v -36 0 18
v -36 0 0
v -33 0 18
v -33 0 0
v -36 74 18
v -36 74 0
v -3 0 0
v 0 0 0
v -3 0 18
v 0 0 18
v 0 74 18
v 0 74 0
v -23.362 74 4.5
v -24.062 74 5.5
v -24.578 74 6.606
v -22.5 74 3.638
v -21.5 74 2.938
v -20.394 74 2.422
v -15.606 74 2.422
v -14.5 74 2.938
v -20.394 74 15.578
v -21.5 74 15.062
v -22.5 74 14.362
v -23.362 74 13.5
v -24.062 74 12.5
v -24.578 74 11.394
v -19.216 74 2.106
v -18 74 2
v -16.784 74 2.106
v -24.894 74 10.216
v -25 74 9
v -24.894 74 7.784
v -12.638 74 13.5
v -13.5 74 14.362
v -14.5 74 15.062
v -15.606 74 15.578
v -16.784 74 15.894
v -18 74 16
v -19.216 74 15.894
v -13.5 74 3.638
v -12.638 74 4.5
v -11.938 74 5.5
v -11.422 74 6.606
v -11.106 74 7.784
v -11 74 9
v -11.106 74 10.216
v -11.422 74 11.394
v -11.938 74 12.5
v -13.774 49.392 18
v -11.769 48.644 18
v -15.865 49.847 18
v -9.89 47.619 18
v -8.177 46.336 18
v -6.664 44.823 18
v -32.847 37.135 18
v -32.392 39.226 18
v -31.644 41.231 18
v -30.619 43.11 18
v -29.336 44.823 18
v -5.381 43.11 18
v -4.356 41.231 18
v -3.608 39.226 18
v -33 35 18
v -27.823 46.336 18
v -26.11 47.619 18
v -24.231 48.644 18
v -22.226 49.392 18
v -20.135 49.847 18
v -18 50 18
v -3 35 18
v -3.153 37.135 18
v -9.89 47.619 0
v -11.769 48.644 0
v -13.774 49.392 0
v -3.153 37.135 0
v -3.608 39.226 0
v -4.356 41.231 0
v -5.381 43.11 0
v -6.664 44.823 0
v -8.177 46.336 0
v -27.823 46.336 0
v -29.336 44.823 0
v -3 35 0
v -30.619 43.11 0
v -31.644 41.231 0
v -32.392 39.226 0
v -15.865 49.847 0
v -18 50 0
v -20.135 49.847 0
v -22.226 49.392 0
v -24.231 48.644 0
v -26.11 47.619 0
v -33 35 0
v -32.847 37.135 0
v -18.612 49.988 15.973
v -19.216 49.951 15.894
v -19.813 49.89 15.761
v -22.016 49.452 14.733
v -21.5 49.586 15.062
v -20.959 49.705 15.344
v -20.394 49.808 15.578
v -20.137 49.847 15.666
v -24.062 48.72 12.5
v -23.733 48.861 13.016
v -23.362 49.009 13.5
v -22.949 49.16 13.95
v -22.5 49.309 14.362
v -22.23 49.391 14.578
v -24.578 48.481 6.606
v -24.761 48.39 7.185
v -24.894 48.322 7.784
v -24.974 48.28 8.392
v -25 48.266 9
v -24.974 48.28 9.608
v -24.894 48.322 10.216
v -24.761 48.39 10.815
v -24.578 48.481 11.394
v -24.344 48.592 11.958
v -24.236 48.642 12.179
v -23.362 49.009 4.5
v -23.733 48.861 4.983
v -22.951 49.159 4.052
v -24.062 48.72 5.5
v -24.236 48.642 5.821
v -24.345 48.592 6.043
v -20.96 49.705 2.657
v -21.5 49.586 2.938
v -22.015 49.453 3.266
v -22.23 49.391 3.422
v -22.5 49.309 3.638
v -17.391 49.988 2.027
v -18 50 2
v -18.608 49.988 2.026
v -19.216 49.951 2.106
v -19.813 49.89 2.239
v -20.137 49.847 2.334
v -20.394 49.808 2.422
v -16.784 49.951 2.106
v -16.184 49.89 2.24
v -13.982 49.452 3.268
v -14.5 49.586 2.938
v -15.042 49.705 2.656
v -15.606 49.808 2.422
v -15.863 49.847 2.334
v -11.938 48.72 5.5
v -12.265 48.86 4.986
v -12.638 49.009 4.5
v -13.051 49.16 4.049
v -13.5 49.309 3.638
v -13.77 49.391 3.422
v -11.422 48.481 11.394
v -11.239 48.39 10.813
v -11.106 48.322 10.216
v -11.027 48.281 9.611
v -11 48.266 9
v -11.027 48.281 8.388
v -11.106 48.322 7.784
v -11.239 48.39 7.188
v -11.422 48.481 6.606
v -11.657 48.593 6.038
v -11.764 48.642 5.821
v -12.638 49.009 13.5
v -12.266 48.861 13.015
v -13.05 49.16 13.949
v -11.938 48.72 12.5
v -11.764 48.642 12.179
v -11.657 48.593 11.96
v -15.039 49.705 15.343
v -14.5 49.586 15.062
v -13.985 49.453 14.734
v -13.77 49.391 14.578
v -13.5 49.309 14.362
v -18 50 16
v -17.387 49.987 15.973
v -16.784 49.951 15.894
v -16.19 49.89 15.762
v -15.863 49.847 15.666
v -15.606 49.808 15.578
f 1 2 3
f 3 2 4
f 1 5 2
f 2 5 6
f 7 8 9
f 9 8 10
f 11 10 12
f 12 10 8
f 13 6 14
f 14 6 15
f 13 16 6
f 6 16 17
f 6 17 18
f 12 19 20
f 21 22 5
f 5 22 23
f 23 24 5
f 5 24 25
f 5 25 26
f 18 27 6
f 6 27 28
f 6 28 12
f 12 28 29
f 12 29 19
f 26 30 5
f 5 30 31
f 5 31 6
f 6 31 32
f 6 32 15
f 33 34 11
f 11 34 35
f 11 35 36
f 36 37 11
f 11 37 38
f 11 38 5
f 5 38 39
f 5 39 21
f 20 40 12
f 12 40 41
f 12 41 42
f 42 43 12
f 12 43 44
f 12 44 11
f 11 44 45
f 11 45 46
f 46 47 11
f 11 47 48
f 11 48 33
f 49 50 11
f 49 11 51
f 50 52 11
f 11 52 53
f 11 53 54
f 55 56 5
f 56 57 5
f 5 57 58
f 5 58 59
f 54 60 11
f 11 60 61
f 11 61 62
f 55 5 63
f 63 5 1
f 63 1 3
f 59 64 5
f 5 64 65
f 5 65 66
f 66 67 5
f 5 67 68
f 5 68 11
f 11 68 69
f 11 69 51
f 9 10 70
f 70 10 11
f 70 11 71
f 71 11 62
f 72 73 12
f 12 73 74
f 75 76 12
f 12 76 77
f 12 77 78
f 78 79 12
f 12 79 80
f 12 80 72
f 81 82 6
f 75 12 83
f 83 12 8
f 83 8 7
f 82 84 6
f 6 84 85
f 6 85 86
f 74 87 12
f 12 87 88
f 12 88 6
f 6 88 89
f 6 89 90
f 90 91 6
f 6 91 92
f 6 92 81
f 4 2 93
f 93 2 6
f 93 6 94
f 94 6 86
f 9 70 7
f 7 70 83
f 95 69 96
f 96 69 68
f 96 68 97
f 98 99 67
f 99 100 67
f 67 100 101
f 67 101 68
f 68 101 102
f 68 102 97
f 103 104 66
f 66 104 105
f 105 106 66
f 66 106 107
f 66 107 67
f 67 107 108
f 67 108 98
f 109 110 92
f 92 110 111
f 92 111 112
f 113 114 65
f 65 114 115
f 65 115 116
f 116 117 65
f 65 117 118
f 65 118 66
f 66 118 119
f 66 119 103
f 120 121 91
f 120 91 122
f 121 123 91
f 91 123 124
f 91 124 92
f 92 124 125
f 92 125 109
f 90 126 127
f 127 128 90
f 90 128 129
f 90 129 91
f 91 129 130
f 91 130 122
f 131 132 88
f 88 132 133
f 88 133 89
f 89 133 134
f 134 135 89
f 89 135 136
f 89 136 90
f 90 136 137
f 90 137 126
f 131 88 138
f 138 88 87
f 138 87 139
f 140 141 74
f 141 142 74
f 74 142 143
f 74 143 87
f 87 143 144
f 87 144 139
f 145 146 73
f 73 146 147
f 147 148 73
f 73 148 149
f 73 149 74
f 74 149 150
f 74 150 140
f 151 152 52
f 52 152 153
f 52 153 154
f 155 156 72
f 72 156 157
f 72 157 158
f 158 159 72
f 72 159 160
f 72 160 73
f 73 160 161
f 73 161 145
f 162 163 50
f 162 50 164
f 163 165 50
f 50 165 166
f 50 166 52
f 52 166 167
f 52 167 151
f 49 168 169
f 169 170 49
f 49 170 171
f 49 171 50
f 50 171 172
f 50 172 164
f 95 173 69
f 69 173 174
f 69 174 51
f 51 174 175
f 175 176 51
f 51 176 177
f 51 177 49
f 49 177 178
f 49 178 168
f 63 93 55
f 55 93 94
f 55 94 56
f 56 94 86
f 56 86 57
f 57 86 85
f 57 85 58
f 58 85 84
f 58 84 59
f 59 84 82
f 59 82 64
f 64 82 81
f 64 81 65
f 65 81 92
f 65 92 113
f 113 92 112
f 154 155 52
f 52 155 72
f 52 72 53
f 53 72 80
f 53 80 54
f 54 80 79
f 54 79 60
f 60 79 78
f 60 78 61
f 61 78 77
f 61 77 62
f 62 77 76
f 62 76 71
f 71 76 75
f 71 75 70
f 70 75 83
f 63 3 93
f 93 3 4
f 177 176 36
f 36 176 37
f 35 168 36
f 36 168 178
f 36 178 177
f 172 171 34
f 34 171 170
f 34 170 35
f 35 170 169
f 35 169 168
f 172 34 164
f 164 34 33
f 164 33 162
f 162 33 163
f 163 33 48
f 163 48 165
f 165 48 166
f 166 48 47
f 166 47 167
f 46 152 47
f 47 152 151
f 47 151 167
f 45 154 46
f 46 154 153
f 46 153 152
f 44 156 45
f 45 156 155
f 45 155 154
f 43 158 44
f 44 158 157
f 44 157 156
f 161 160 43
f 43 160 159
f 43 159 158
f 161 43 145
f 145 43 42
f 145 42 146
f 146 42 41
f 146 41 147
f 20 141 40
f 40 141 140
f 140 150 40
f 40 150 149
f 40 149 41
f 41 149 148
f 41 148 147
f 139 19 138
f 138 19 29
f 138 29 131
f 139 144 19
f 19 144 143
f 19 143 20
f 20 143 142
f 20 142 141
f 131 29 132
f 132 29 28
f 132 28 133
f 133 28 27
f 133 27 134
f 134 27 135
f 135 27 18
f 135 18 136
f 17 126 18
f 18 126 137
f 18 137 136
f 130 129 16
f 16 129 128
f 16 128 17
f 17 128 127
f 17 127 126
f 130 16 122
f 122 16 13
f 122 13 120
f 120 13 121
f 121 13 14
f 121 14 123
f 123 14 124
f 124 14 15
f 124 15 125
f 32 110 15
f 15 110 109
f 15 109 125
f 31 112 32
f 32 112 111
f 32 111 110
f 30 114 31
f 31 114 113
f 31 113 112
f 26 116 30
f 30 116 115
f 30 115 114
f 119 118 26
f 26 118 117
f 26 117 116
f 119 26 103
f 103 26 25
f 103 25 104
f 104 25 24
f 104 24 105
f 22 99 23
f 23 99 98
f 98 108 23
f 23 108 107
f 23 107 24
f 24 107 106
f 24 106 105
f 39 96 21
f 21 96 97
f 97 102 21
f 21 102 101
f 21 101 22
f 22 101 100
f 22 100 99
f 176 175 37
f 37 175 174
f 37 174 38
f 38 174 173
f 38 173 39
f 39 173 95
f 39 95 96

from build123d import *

# Parameters (mm, degrees)
BOSS_EXTRUDE1_DEPTH     = 18
CUT_EXTRUDE1_REACH      = 86.238
CUT_EXTRUDE1_END_RADIUS = 15
SKETCH3_R               = 7


with BuildPart() as part:
    # Sketch2 → Boss-Extrude1 (new body)
    with BuildSketch(Plane.XY):
        with BuildLine():
            Line((-33.38706816, 74), (-36, 74))
            Line((-36, 74), (-36, 0))
            Line((-36, 0), (-33, 0))
            Line((-33, 0), (-33, 35))
            ThreePointArc((-33, 35), (-18, 50), (-3, 35))
            Line((-3, 35), (-3, 0))
            Line((-3, 0), (0, 0))
            Line((0, 0), (0, 74))
            Line((0, 74), (-12.61679677, 74))
            Line((-12.61679677, 74), (-33.38706816, 74))
        make_face()
    extrude(amount=BOSS_EXTRUDE1_DEPTH)

    # Cut-Extrude1: up to this cylinder (the profile starts outside it)
    cut_extrude1_end = Plane(origin=(-18, 35, 9), z_dir=(0, 0, -1)) * Cylinder(CUT_EXTRUDE1_END_RADIUS, 203.476, mode=Mode.PRIVATE)
    # Sketch3 → Cut-Extrude1 (cut, up to the surface)
    with BuildSketch(Plane(origin=(0, 74, 0), x_dir=(1, 0, 0), z_dir=(0, 1, 0)), mode=Mode.PRIVATE) as cut_extrude1_sk1:
        with Locations(Location((-18, -9, 0), (0, 0, 270))):
            Circle(SKETCH3_R)
    cut_extrude1_tool1 = extrude(cut_extrude1_sk1.sketch, amount=-CUT_EXTRUDE1_REACH, mode=Mode.PRIVATE) - cut_extrude1_end
    add(cut_extrude1_tool1.solids().sort_by_distance((-18, 74, 9))[0], mode=Mode.SUBTRACT)


solid = part.part
